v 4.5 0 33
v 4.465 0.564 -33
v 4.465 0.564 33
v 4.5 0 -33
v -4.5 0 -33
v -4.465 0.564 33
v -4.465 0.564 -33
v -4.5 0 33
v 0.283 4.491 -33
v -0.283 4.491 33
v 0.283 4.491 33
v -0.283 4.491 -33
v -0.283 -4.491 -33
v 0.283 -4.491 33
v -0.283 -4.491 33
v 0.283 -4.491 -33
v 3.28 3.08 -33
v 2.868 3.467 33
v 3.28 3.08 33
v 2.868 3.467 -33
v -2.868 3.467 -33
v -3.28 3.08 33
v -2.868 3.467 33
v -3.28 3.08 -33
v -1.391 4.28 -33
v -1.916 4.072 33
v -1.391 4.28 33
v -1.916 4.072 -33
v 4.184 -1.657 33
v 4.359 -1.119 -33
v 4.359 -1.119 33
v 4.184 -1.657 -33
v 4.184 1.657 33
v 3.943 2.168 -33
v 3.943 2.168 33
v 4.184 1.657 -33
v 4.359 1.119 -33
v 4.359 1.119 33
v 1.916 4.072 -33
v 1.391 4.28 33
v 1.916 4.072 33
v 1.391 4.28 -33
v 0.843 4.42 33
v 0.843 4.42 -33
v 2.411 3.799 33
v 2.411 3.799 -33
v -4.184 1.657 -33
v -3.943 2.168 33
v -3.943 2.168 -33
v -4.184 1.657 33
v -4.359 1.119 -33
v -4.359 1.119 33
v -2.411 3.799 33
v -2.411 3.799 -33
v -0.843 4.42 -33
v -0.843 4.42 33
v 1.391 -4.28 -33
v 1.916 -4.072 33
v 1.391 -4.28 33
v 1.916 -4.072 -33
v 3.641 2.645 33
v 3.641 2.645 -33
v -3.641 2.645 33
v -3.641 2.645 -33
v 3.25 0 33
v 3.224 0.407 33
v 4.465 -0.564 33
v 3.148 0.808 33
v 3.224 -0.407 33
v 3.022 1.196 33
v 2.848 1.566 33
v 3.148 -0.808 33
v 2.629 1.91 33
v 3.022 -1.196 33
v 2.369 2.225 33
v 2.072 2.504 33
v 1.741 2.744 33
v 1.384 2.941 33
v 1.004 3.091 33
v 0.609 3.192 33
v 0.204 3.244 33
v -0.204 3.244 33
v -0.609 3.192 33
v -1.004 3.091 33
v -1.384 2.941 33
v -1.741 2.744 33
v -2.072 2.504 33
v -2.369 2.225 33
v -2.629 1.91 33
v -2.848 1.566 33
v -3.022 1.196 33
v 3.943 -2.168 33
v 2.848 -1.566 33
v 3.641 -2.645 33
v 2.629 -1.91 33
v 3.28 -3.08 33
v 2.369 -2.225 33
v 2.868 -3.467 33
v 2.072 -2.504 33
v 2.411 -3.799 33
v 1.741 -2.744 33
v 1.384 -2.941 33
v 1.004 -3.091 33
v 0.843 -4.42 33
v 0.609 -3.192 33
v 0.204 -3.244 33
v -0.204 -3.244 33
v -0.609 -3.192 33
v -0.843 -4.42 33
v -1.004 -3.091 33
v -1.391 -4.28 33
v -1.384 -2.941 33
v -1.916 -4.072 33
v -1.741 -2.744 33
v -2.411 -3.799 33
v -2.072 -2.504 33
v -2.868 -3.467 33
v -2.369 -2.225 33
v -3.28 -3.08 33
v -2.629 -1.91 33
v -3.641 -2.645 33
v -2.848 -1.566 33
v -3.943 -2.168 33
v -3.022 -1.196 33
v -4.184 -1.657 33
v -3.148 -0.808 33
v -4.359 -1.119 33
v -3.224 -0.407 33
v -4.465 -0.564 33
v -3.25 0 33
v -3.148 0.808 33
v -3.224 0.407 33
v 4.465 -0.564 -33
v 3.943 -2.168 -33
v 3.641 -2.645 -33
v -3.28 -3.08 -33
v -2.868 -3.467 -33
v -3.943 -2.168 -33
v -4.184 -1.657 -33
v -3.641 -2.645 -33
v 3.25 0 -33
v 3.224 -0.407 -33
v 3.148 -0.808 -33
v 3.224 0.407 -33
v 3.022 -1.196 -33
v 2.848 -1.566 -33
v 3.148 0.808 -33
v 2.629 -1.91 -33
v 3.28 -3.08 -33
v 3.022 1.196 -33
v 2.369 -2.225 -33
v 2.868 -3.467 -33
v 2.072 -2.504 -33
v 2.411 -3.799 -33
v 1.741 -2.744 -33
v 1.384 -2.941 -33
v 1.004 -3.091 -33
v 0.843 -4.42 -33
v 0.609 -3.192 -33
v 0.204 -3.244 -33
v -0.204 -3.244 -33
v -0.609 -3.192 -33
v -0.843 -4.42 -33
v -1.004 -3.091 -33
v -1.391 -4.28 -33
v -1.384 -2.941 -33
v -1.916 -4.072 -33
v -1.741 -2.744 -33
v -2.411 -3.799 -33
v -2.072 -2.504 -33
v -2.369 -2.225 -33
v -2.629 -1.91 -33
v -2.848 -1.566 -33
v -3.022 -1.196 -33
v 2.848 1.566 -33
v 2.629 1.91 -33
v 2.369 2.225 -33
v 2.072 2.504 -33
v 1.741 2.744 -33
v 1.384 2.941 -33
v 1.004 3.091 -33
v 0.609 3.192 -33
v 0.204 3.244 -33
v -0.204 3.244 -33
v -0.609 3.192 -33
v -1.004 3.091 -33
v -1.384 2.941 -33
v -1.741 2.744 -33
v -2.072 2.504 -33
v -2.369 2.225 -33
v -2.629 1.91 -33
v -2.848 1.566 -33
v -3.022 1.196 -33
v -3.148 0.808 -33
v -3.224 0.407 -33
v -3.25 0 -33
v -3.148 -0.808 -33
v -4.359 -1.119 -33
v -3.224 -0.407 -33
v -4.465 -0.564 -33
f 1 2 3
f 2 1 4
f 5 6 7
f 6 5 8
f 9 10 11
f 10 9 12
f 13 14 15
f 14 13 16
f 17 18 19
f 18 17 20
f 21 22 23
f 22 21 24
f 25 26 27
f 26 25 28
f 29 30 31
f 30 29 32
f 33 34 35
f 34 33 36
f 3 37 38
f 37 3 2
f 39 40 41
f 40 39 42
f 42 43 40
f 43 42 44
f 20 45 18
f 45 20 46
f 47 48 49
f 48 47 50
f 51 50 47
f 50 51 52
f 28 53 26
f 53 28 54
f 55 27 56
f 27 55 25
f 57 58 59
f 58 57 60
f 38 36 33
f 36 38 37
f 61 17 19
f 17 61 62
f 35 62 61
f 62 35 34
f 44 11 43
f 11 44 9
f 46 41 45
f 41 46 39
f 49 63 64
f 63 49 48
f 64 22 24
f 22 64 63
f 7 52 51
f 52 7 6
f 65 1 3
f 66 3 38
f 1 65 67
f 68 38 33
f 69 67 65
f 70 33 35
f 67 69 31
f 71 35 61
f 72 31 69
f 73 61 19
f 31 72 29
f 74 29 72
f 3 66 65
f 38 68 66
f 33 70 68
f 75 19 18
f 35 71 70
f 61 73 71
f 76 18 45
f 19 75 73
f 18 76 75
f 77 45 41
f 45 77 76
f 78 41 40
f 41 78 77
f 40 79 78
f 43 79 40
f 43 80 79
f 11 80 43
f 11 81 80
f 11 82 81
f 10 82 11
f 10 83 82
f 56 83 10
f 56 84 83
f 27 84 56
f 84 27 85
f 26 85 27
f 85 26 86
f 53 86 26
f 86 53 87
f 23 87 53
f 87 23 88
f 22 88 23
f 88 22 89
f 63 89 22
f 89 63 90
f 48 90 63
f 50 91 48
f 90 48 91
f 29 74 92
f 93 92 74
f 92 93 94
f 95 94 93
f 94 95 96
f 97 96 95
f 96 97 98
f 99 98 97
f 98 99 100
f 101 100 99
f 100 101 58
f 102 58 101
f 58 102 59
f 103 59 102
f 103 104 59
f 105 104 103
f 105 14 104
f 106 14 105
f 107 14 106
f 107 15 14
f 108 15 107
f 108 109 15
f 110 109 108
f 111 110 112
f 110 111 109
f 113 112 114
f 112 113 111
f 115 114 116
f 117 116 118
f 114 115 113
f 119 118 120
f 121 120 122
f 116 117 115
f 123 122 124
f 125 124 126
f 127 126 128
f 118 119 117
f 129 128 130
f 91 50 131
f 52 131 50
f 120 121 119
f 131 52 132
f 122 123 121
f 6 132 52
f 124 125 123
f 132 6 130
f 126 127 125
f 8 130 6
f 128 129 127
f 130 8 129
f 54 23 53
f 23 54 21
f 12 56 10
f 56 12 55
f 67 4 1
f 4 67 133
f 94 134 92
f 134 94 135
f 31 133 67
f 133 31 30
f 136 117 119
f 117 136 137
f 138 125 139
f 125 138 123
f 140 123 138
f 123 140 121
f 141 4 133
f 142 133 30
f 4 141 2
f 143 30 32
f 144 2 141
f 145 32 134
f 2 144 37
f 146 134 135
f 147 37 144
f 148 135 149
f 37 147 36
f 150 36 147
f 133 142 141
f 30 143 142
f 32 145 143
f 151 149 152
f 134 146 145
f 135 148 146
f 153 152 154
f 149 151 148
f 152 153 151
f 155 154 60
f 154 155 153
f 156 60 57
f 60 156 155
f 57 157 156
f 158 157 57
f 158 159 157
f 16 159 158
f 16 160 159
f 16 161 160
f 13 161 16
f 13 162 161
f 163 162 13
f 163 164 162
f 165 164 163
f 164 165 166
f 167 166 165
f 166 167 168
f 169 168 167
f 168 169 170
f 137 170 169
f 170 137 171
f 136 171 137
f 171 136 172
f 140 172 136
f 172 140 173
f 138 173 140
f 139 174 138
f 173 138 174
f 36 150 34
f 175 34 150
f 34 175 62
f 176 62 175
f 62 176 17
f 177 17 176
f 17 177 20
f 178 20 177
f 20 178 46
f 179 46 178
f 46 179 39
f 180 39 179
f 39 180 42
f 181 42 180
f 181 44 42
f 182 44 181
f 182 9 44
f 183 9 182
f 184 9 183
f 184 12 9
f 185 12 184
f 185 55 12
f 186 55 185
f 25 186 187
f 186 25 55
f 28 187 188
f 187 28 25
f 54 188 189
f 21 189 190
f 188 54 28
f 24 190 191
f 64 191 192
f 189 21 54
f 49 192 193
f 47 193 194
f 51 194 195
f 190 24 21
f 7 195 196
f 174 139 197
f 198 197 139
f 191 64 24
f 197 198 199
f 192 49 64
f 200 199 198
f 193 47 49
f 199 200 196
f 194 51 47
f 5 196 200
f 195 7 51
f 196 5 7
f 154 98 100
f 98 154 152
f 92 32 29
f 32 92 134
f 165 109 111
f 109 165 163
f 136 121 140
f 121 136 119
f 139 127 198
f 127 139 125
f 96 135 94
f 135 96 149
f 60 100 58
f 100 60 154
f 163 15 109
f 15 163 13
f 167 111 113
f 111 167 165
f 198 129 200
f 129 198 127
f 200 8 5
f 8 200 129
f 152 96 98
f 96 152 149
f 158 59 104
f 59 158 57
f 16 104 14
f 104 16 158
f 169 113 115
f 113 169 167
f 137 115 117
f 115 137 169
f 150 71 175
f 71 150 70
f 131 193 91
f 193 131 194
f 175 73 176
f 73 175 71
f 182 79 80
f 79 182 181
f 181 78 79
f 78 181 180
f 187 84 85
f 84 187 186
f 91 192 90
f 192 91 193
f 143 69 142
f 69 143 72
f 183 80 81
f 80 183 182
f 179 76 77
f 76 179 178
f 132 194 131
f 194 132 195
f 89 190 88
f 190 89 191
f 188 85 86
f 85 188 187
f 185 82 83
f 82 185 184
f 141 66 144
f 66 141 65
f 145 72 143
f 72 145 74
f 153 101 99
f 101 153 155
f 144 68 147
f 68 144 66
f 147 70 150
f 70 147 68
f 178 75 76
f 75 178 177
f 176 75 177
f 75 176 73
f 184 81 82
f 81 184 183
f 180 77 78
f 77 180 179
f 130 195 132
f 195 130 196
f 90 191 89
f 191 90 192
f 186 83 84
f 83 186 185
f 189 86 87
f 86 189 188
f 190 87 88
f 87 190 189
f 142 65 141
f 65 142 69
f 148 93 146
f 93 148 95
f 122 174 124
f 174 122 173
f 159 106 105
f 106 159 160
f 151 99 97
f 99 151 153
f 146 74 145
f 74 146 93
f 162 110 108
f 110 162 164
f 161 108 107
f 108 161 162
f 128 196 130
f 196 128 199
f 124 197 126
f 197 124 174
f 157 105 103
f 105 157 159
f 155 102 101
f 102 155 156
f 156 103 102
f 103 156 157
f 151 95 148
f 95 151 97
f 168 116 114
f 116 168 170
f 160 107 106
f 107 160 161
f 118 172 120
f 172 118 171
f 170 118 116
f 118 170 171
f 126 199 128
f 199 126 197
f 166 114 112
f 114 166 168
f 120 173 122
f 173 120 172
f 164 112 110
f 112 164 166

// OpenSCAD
$fn = 50;


difference() {
	union() {
		translate(v = [0, 0, -33.0000000000]) {
			cylinder(h = 66, r = 4.5000000000);
		}
	}
	union() {
		translate(v = [0, 0, -100.0000000000]) {
			cylinder(h = 200, r = 3.2500000000);
		}
	}
}
